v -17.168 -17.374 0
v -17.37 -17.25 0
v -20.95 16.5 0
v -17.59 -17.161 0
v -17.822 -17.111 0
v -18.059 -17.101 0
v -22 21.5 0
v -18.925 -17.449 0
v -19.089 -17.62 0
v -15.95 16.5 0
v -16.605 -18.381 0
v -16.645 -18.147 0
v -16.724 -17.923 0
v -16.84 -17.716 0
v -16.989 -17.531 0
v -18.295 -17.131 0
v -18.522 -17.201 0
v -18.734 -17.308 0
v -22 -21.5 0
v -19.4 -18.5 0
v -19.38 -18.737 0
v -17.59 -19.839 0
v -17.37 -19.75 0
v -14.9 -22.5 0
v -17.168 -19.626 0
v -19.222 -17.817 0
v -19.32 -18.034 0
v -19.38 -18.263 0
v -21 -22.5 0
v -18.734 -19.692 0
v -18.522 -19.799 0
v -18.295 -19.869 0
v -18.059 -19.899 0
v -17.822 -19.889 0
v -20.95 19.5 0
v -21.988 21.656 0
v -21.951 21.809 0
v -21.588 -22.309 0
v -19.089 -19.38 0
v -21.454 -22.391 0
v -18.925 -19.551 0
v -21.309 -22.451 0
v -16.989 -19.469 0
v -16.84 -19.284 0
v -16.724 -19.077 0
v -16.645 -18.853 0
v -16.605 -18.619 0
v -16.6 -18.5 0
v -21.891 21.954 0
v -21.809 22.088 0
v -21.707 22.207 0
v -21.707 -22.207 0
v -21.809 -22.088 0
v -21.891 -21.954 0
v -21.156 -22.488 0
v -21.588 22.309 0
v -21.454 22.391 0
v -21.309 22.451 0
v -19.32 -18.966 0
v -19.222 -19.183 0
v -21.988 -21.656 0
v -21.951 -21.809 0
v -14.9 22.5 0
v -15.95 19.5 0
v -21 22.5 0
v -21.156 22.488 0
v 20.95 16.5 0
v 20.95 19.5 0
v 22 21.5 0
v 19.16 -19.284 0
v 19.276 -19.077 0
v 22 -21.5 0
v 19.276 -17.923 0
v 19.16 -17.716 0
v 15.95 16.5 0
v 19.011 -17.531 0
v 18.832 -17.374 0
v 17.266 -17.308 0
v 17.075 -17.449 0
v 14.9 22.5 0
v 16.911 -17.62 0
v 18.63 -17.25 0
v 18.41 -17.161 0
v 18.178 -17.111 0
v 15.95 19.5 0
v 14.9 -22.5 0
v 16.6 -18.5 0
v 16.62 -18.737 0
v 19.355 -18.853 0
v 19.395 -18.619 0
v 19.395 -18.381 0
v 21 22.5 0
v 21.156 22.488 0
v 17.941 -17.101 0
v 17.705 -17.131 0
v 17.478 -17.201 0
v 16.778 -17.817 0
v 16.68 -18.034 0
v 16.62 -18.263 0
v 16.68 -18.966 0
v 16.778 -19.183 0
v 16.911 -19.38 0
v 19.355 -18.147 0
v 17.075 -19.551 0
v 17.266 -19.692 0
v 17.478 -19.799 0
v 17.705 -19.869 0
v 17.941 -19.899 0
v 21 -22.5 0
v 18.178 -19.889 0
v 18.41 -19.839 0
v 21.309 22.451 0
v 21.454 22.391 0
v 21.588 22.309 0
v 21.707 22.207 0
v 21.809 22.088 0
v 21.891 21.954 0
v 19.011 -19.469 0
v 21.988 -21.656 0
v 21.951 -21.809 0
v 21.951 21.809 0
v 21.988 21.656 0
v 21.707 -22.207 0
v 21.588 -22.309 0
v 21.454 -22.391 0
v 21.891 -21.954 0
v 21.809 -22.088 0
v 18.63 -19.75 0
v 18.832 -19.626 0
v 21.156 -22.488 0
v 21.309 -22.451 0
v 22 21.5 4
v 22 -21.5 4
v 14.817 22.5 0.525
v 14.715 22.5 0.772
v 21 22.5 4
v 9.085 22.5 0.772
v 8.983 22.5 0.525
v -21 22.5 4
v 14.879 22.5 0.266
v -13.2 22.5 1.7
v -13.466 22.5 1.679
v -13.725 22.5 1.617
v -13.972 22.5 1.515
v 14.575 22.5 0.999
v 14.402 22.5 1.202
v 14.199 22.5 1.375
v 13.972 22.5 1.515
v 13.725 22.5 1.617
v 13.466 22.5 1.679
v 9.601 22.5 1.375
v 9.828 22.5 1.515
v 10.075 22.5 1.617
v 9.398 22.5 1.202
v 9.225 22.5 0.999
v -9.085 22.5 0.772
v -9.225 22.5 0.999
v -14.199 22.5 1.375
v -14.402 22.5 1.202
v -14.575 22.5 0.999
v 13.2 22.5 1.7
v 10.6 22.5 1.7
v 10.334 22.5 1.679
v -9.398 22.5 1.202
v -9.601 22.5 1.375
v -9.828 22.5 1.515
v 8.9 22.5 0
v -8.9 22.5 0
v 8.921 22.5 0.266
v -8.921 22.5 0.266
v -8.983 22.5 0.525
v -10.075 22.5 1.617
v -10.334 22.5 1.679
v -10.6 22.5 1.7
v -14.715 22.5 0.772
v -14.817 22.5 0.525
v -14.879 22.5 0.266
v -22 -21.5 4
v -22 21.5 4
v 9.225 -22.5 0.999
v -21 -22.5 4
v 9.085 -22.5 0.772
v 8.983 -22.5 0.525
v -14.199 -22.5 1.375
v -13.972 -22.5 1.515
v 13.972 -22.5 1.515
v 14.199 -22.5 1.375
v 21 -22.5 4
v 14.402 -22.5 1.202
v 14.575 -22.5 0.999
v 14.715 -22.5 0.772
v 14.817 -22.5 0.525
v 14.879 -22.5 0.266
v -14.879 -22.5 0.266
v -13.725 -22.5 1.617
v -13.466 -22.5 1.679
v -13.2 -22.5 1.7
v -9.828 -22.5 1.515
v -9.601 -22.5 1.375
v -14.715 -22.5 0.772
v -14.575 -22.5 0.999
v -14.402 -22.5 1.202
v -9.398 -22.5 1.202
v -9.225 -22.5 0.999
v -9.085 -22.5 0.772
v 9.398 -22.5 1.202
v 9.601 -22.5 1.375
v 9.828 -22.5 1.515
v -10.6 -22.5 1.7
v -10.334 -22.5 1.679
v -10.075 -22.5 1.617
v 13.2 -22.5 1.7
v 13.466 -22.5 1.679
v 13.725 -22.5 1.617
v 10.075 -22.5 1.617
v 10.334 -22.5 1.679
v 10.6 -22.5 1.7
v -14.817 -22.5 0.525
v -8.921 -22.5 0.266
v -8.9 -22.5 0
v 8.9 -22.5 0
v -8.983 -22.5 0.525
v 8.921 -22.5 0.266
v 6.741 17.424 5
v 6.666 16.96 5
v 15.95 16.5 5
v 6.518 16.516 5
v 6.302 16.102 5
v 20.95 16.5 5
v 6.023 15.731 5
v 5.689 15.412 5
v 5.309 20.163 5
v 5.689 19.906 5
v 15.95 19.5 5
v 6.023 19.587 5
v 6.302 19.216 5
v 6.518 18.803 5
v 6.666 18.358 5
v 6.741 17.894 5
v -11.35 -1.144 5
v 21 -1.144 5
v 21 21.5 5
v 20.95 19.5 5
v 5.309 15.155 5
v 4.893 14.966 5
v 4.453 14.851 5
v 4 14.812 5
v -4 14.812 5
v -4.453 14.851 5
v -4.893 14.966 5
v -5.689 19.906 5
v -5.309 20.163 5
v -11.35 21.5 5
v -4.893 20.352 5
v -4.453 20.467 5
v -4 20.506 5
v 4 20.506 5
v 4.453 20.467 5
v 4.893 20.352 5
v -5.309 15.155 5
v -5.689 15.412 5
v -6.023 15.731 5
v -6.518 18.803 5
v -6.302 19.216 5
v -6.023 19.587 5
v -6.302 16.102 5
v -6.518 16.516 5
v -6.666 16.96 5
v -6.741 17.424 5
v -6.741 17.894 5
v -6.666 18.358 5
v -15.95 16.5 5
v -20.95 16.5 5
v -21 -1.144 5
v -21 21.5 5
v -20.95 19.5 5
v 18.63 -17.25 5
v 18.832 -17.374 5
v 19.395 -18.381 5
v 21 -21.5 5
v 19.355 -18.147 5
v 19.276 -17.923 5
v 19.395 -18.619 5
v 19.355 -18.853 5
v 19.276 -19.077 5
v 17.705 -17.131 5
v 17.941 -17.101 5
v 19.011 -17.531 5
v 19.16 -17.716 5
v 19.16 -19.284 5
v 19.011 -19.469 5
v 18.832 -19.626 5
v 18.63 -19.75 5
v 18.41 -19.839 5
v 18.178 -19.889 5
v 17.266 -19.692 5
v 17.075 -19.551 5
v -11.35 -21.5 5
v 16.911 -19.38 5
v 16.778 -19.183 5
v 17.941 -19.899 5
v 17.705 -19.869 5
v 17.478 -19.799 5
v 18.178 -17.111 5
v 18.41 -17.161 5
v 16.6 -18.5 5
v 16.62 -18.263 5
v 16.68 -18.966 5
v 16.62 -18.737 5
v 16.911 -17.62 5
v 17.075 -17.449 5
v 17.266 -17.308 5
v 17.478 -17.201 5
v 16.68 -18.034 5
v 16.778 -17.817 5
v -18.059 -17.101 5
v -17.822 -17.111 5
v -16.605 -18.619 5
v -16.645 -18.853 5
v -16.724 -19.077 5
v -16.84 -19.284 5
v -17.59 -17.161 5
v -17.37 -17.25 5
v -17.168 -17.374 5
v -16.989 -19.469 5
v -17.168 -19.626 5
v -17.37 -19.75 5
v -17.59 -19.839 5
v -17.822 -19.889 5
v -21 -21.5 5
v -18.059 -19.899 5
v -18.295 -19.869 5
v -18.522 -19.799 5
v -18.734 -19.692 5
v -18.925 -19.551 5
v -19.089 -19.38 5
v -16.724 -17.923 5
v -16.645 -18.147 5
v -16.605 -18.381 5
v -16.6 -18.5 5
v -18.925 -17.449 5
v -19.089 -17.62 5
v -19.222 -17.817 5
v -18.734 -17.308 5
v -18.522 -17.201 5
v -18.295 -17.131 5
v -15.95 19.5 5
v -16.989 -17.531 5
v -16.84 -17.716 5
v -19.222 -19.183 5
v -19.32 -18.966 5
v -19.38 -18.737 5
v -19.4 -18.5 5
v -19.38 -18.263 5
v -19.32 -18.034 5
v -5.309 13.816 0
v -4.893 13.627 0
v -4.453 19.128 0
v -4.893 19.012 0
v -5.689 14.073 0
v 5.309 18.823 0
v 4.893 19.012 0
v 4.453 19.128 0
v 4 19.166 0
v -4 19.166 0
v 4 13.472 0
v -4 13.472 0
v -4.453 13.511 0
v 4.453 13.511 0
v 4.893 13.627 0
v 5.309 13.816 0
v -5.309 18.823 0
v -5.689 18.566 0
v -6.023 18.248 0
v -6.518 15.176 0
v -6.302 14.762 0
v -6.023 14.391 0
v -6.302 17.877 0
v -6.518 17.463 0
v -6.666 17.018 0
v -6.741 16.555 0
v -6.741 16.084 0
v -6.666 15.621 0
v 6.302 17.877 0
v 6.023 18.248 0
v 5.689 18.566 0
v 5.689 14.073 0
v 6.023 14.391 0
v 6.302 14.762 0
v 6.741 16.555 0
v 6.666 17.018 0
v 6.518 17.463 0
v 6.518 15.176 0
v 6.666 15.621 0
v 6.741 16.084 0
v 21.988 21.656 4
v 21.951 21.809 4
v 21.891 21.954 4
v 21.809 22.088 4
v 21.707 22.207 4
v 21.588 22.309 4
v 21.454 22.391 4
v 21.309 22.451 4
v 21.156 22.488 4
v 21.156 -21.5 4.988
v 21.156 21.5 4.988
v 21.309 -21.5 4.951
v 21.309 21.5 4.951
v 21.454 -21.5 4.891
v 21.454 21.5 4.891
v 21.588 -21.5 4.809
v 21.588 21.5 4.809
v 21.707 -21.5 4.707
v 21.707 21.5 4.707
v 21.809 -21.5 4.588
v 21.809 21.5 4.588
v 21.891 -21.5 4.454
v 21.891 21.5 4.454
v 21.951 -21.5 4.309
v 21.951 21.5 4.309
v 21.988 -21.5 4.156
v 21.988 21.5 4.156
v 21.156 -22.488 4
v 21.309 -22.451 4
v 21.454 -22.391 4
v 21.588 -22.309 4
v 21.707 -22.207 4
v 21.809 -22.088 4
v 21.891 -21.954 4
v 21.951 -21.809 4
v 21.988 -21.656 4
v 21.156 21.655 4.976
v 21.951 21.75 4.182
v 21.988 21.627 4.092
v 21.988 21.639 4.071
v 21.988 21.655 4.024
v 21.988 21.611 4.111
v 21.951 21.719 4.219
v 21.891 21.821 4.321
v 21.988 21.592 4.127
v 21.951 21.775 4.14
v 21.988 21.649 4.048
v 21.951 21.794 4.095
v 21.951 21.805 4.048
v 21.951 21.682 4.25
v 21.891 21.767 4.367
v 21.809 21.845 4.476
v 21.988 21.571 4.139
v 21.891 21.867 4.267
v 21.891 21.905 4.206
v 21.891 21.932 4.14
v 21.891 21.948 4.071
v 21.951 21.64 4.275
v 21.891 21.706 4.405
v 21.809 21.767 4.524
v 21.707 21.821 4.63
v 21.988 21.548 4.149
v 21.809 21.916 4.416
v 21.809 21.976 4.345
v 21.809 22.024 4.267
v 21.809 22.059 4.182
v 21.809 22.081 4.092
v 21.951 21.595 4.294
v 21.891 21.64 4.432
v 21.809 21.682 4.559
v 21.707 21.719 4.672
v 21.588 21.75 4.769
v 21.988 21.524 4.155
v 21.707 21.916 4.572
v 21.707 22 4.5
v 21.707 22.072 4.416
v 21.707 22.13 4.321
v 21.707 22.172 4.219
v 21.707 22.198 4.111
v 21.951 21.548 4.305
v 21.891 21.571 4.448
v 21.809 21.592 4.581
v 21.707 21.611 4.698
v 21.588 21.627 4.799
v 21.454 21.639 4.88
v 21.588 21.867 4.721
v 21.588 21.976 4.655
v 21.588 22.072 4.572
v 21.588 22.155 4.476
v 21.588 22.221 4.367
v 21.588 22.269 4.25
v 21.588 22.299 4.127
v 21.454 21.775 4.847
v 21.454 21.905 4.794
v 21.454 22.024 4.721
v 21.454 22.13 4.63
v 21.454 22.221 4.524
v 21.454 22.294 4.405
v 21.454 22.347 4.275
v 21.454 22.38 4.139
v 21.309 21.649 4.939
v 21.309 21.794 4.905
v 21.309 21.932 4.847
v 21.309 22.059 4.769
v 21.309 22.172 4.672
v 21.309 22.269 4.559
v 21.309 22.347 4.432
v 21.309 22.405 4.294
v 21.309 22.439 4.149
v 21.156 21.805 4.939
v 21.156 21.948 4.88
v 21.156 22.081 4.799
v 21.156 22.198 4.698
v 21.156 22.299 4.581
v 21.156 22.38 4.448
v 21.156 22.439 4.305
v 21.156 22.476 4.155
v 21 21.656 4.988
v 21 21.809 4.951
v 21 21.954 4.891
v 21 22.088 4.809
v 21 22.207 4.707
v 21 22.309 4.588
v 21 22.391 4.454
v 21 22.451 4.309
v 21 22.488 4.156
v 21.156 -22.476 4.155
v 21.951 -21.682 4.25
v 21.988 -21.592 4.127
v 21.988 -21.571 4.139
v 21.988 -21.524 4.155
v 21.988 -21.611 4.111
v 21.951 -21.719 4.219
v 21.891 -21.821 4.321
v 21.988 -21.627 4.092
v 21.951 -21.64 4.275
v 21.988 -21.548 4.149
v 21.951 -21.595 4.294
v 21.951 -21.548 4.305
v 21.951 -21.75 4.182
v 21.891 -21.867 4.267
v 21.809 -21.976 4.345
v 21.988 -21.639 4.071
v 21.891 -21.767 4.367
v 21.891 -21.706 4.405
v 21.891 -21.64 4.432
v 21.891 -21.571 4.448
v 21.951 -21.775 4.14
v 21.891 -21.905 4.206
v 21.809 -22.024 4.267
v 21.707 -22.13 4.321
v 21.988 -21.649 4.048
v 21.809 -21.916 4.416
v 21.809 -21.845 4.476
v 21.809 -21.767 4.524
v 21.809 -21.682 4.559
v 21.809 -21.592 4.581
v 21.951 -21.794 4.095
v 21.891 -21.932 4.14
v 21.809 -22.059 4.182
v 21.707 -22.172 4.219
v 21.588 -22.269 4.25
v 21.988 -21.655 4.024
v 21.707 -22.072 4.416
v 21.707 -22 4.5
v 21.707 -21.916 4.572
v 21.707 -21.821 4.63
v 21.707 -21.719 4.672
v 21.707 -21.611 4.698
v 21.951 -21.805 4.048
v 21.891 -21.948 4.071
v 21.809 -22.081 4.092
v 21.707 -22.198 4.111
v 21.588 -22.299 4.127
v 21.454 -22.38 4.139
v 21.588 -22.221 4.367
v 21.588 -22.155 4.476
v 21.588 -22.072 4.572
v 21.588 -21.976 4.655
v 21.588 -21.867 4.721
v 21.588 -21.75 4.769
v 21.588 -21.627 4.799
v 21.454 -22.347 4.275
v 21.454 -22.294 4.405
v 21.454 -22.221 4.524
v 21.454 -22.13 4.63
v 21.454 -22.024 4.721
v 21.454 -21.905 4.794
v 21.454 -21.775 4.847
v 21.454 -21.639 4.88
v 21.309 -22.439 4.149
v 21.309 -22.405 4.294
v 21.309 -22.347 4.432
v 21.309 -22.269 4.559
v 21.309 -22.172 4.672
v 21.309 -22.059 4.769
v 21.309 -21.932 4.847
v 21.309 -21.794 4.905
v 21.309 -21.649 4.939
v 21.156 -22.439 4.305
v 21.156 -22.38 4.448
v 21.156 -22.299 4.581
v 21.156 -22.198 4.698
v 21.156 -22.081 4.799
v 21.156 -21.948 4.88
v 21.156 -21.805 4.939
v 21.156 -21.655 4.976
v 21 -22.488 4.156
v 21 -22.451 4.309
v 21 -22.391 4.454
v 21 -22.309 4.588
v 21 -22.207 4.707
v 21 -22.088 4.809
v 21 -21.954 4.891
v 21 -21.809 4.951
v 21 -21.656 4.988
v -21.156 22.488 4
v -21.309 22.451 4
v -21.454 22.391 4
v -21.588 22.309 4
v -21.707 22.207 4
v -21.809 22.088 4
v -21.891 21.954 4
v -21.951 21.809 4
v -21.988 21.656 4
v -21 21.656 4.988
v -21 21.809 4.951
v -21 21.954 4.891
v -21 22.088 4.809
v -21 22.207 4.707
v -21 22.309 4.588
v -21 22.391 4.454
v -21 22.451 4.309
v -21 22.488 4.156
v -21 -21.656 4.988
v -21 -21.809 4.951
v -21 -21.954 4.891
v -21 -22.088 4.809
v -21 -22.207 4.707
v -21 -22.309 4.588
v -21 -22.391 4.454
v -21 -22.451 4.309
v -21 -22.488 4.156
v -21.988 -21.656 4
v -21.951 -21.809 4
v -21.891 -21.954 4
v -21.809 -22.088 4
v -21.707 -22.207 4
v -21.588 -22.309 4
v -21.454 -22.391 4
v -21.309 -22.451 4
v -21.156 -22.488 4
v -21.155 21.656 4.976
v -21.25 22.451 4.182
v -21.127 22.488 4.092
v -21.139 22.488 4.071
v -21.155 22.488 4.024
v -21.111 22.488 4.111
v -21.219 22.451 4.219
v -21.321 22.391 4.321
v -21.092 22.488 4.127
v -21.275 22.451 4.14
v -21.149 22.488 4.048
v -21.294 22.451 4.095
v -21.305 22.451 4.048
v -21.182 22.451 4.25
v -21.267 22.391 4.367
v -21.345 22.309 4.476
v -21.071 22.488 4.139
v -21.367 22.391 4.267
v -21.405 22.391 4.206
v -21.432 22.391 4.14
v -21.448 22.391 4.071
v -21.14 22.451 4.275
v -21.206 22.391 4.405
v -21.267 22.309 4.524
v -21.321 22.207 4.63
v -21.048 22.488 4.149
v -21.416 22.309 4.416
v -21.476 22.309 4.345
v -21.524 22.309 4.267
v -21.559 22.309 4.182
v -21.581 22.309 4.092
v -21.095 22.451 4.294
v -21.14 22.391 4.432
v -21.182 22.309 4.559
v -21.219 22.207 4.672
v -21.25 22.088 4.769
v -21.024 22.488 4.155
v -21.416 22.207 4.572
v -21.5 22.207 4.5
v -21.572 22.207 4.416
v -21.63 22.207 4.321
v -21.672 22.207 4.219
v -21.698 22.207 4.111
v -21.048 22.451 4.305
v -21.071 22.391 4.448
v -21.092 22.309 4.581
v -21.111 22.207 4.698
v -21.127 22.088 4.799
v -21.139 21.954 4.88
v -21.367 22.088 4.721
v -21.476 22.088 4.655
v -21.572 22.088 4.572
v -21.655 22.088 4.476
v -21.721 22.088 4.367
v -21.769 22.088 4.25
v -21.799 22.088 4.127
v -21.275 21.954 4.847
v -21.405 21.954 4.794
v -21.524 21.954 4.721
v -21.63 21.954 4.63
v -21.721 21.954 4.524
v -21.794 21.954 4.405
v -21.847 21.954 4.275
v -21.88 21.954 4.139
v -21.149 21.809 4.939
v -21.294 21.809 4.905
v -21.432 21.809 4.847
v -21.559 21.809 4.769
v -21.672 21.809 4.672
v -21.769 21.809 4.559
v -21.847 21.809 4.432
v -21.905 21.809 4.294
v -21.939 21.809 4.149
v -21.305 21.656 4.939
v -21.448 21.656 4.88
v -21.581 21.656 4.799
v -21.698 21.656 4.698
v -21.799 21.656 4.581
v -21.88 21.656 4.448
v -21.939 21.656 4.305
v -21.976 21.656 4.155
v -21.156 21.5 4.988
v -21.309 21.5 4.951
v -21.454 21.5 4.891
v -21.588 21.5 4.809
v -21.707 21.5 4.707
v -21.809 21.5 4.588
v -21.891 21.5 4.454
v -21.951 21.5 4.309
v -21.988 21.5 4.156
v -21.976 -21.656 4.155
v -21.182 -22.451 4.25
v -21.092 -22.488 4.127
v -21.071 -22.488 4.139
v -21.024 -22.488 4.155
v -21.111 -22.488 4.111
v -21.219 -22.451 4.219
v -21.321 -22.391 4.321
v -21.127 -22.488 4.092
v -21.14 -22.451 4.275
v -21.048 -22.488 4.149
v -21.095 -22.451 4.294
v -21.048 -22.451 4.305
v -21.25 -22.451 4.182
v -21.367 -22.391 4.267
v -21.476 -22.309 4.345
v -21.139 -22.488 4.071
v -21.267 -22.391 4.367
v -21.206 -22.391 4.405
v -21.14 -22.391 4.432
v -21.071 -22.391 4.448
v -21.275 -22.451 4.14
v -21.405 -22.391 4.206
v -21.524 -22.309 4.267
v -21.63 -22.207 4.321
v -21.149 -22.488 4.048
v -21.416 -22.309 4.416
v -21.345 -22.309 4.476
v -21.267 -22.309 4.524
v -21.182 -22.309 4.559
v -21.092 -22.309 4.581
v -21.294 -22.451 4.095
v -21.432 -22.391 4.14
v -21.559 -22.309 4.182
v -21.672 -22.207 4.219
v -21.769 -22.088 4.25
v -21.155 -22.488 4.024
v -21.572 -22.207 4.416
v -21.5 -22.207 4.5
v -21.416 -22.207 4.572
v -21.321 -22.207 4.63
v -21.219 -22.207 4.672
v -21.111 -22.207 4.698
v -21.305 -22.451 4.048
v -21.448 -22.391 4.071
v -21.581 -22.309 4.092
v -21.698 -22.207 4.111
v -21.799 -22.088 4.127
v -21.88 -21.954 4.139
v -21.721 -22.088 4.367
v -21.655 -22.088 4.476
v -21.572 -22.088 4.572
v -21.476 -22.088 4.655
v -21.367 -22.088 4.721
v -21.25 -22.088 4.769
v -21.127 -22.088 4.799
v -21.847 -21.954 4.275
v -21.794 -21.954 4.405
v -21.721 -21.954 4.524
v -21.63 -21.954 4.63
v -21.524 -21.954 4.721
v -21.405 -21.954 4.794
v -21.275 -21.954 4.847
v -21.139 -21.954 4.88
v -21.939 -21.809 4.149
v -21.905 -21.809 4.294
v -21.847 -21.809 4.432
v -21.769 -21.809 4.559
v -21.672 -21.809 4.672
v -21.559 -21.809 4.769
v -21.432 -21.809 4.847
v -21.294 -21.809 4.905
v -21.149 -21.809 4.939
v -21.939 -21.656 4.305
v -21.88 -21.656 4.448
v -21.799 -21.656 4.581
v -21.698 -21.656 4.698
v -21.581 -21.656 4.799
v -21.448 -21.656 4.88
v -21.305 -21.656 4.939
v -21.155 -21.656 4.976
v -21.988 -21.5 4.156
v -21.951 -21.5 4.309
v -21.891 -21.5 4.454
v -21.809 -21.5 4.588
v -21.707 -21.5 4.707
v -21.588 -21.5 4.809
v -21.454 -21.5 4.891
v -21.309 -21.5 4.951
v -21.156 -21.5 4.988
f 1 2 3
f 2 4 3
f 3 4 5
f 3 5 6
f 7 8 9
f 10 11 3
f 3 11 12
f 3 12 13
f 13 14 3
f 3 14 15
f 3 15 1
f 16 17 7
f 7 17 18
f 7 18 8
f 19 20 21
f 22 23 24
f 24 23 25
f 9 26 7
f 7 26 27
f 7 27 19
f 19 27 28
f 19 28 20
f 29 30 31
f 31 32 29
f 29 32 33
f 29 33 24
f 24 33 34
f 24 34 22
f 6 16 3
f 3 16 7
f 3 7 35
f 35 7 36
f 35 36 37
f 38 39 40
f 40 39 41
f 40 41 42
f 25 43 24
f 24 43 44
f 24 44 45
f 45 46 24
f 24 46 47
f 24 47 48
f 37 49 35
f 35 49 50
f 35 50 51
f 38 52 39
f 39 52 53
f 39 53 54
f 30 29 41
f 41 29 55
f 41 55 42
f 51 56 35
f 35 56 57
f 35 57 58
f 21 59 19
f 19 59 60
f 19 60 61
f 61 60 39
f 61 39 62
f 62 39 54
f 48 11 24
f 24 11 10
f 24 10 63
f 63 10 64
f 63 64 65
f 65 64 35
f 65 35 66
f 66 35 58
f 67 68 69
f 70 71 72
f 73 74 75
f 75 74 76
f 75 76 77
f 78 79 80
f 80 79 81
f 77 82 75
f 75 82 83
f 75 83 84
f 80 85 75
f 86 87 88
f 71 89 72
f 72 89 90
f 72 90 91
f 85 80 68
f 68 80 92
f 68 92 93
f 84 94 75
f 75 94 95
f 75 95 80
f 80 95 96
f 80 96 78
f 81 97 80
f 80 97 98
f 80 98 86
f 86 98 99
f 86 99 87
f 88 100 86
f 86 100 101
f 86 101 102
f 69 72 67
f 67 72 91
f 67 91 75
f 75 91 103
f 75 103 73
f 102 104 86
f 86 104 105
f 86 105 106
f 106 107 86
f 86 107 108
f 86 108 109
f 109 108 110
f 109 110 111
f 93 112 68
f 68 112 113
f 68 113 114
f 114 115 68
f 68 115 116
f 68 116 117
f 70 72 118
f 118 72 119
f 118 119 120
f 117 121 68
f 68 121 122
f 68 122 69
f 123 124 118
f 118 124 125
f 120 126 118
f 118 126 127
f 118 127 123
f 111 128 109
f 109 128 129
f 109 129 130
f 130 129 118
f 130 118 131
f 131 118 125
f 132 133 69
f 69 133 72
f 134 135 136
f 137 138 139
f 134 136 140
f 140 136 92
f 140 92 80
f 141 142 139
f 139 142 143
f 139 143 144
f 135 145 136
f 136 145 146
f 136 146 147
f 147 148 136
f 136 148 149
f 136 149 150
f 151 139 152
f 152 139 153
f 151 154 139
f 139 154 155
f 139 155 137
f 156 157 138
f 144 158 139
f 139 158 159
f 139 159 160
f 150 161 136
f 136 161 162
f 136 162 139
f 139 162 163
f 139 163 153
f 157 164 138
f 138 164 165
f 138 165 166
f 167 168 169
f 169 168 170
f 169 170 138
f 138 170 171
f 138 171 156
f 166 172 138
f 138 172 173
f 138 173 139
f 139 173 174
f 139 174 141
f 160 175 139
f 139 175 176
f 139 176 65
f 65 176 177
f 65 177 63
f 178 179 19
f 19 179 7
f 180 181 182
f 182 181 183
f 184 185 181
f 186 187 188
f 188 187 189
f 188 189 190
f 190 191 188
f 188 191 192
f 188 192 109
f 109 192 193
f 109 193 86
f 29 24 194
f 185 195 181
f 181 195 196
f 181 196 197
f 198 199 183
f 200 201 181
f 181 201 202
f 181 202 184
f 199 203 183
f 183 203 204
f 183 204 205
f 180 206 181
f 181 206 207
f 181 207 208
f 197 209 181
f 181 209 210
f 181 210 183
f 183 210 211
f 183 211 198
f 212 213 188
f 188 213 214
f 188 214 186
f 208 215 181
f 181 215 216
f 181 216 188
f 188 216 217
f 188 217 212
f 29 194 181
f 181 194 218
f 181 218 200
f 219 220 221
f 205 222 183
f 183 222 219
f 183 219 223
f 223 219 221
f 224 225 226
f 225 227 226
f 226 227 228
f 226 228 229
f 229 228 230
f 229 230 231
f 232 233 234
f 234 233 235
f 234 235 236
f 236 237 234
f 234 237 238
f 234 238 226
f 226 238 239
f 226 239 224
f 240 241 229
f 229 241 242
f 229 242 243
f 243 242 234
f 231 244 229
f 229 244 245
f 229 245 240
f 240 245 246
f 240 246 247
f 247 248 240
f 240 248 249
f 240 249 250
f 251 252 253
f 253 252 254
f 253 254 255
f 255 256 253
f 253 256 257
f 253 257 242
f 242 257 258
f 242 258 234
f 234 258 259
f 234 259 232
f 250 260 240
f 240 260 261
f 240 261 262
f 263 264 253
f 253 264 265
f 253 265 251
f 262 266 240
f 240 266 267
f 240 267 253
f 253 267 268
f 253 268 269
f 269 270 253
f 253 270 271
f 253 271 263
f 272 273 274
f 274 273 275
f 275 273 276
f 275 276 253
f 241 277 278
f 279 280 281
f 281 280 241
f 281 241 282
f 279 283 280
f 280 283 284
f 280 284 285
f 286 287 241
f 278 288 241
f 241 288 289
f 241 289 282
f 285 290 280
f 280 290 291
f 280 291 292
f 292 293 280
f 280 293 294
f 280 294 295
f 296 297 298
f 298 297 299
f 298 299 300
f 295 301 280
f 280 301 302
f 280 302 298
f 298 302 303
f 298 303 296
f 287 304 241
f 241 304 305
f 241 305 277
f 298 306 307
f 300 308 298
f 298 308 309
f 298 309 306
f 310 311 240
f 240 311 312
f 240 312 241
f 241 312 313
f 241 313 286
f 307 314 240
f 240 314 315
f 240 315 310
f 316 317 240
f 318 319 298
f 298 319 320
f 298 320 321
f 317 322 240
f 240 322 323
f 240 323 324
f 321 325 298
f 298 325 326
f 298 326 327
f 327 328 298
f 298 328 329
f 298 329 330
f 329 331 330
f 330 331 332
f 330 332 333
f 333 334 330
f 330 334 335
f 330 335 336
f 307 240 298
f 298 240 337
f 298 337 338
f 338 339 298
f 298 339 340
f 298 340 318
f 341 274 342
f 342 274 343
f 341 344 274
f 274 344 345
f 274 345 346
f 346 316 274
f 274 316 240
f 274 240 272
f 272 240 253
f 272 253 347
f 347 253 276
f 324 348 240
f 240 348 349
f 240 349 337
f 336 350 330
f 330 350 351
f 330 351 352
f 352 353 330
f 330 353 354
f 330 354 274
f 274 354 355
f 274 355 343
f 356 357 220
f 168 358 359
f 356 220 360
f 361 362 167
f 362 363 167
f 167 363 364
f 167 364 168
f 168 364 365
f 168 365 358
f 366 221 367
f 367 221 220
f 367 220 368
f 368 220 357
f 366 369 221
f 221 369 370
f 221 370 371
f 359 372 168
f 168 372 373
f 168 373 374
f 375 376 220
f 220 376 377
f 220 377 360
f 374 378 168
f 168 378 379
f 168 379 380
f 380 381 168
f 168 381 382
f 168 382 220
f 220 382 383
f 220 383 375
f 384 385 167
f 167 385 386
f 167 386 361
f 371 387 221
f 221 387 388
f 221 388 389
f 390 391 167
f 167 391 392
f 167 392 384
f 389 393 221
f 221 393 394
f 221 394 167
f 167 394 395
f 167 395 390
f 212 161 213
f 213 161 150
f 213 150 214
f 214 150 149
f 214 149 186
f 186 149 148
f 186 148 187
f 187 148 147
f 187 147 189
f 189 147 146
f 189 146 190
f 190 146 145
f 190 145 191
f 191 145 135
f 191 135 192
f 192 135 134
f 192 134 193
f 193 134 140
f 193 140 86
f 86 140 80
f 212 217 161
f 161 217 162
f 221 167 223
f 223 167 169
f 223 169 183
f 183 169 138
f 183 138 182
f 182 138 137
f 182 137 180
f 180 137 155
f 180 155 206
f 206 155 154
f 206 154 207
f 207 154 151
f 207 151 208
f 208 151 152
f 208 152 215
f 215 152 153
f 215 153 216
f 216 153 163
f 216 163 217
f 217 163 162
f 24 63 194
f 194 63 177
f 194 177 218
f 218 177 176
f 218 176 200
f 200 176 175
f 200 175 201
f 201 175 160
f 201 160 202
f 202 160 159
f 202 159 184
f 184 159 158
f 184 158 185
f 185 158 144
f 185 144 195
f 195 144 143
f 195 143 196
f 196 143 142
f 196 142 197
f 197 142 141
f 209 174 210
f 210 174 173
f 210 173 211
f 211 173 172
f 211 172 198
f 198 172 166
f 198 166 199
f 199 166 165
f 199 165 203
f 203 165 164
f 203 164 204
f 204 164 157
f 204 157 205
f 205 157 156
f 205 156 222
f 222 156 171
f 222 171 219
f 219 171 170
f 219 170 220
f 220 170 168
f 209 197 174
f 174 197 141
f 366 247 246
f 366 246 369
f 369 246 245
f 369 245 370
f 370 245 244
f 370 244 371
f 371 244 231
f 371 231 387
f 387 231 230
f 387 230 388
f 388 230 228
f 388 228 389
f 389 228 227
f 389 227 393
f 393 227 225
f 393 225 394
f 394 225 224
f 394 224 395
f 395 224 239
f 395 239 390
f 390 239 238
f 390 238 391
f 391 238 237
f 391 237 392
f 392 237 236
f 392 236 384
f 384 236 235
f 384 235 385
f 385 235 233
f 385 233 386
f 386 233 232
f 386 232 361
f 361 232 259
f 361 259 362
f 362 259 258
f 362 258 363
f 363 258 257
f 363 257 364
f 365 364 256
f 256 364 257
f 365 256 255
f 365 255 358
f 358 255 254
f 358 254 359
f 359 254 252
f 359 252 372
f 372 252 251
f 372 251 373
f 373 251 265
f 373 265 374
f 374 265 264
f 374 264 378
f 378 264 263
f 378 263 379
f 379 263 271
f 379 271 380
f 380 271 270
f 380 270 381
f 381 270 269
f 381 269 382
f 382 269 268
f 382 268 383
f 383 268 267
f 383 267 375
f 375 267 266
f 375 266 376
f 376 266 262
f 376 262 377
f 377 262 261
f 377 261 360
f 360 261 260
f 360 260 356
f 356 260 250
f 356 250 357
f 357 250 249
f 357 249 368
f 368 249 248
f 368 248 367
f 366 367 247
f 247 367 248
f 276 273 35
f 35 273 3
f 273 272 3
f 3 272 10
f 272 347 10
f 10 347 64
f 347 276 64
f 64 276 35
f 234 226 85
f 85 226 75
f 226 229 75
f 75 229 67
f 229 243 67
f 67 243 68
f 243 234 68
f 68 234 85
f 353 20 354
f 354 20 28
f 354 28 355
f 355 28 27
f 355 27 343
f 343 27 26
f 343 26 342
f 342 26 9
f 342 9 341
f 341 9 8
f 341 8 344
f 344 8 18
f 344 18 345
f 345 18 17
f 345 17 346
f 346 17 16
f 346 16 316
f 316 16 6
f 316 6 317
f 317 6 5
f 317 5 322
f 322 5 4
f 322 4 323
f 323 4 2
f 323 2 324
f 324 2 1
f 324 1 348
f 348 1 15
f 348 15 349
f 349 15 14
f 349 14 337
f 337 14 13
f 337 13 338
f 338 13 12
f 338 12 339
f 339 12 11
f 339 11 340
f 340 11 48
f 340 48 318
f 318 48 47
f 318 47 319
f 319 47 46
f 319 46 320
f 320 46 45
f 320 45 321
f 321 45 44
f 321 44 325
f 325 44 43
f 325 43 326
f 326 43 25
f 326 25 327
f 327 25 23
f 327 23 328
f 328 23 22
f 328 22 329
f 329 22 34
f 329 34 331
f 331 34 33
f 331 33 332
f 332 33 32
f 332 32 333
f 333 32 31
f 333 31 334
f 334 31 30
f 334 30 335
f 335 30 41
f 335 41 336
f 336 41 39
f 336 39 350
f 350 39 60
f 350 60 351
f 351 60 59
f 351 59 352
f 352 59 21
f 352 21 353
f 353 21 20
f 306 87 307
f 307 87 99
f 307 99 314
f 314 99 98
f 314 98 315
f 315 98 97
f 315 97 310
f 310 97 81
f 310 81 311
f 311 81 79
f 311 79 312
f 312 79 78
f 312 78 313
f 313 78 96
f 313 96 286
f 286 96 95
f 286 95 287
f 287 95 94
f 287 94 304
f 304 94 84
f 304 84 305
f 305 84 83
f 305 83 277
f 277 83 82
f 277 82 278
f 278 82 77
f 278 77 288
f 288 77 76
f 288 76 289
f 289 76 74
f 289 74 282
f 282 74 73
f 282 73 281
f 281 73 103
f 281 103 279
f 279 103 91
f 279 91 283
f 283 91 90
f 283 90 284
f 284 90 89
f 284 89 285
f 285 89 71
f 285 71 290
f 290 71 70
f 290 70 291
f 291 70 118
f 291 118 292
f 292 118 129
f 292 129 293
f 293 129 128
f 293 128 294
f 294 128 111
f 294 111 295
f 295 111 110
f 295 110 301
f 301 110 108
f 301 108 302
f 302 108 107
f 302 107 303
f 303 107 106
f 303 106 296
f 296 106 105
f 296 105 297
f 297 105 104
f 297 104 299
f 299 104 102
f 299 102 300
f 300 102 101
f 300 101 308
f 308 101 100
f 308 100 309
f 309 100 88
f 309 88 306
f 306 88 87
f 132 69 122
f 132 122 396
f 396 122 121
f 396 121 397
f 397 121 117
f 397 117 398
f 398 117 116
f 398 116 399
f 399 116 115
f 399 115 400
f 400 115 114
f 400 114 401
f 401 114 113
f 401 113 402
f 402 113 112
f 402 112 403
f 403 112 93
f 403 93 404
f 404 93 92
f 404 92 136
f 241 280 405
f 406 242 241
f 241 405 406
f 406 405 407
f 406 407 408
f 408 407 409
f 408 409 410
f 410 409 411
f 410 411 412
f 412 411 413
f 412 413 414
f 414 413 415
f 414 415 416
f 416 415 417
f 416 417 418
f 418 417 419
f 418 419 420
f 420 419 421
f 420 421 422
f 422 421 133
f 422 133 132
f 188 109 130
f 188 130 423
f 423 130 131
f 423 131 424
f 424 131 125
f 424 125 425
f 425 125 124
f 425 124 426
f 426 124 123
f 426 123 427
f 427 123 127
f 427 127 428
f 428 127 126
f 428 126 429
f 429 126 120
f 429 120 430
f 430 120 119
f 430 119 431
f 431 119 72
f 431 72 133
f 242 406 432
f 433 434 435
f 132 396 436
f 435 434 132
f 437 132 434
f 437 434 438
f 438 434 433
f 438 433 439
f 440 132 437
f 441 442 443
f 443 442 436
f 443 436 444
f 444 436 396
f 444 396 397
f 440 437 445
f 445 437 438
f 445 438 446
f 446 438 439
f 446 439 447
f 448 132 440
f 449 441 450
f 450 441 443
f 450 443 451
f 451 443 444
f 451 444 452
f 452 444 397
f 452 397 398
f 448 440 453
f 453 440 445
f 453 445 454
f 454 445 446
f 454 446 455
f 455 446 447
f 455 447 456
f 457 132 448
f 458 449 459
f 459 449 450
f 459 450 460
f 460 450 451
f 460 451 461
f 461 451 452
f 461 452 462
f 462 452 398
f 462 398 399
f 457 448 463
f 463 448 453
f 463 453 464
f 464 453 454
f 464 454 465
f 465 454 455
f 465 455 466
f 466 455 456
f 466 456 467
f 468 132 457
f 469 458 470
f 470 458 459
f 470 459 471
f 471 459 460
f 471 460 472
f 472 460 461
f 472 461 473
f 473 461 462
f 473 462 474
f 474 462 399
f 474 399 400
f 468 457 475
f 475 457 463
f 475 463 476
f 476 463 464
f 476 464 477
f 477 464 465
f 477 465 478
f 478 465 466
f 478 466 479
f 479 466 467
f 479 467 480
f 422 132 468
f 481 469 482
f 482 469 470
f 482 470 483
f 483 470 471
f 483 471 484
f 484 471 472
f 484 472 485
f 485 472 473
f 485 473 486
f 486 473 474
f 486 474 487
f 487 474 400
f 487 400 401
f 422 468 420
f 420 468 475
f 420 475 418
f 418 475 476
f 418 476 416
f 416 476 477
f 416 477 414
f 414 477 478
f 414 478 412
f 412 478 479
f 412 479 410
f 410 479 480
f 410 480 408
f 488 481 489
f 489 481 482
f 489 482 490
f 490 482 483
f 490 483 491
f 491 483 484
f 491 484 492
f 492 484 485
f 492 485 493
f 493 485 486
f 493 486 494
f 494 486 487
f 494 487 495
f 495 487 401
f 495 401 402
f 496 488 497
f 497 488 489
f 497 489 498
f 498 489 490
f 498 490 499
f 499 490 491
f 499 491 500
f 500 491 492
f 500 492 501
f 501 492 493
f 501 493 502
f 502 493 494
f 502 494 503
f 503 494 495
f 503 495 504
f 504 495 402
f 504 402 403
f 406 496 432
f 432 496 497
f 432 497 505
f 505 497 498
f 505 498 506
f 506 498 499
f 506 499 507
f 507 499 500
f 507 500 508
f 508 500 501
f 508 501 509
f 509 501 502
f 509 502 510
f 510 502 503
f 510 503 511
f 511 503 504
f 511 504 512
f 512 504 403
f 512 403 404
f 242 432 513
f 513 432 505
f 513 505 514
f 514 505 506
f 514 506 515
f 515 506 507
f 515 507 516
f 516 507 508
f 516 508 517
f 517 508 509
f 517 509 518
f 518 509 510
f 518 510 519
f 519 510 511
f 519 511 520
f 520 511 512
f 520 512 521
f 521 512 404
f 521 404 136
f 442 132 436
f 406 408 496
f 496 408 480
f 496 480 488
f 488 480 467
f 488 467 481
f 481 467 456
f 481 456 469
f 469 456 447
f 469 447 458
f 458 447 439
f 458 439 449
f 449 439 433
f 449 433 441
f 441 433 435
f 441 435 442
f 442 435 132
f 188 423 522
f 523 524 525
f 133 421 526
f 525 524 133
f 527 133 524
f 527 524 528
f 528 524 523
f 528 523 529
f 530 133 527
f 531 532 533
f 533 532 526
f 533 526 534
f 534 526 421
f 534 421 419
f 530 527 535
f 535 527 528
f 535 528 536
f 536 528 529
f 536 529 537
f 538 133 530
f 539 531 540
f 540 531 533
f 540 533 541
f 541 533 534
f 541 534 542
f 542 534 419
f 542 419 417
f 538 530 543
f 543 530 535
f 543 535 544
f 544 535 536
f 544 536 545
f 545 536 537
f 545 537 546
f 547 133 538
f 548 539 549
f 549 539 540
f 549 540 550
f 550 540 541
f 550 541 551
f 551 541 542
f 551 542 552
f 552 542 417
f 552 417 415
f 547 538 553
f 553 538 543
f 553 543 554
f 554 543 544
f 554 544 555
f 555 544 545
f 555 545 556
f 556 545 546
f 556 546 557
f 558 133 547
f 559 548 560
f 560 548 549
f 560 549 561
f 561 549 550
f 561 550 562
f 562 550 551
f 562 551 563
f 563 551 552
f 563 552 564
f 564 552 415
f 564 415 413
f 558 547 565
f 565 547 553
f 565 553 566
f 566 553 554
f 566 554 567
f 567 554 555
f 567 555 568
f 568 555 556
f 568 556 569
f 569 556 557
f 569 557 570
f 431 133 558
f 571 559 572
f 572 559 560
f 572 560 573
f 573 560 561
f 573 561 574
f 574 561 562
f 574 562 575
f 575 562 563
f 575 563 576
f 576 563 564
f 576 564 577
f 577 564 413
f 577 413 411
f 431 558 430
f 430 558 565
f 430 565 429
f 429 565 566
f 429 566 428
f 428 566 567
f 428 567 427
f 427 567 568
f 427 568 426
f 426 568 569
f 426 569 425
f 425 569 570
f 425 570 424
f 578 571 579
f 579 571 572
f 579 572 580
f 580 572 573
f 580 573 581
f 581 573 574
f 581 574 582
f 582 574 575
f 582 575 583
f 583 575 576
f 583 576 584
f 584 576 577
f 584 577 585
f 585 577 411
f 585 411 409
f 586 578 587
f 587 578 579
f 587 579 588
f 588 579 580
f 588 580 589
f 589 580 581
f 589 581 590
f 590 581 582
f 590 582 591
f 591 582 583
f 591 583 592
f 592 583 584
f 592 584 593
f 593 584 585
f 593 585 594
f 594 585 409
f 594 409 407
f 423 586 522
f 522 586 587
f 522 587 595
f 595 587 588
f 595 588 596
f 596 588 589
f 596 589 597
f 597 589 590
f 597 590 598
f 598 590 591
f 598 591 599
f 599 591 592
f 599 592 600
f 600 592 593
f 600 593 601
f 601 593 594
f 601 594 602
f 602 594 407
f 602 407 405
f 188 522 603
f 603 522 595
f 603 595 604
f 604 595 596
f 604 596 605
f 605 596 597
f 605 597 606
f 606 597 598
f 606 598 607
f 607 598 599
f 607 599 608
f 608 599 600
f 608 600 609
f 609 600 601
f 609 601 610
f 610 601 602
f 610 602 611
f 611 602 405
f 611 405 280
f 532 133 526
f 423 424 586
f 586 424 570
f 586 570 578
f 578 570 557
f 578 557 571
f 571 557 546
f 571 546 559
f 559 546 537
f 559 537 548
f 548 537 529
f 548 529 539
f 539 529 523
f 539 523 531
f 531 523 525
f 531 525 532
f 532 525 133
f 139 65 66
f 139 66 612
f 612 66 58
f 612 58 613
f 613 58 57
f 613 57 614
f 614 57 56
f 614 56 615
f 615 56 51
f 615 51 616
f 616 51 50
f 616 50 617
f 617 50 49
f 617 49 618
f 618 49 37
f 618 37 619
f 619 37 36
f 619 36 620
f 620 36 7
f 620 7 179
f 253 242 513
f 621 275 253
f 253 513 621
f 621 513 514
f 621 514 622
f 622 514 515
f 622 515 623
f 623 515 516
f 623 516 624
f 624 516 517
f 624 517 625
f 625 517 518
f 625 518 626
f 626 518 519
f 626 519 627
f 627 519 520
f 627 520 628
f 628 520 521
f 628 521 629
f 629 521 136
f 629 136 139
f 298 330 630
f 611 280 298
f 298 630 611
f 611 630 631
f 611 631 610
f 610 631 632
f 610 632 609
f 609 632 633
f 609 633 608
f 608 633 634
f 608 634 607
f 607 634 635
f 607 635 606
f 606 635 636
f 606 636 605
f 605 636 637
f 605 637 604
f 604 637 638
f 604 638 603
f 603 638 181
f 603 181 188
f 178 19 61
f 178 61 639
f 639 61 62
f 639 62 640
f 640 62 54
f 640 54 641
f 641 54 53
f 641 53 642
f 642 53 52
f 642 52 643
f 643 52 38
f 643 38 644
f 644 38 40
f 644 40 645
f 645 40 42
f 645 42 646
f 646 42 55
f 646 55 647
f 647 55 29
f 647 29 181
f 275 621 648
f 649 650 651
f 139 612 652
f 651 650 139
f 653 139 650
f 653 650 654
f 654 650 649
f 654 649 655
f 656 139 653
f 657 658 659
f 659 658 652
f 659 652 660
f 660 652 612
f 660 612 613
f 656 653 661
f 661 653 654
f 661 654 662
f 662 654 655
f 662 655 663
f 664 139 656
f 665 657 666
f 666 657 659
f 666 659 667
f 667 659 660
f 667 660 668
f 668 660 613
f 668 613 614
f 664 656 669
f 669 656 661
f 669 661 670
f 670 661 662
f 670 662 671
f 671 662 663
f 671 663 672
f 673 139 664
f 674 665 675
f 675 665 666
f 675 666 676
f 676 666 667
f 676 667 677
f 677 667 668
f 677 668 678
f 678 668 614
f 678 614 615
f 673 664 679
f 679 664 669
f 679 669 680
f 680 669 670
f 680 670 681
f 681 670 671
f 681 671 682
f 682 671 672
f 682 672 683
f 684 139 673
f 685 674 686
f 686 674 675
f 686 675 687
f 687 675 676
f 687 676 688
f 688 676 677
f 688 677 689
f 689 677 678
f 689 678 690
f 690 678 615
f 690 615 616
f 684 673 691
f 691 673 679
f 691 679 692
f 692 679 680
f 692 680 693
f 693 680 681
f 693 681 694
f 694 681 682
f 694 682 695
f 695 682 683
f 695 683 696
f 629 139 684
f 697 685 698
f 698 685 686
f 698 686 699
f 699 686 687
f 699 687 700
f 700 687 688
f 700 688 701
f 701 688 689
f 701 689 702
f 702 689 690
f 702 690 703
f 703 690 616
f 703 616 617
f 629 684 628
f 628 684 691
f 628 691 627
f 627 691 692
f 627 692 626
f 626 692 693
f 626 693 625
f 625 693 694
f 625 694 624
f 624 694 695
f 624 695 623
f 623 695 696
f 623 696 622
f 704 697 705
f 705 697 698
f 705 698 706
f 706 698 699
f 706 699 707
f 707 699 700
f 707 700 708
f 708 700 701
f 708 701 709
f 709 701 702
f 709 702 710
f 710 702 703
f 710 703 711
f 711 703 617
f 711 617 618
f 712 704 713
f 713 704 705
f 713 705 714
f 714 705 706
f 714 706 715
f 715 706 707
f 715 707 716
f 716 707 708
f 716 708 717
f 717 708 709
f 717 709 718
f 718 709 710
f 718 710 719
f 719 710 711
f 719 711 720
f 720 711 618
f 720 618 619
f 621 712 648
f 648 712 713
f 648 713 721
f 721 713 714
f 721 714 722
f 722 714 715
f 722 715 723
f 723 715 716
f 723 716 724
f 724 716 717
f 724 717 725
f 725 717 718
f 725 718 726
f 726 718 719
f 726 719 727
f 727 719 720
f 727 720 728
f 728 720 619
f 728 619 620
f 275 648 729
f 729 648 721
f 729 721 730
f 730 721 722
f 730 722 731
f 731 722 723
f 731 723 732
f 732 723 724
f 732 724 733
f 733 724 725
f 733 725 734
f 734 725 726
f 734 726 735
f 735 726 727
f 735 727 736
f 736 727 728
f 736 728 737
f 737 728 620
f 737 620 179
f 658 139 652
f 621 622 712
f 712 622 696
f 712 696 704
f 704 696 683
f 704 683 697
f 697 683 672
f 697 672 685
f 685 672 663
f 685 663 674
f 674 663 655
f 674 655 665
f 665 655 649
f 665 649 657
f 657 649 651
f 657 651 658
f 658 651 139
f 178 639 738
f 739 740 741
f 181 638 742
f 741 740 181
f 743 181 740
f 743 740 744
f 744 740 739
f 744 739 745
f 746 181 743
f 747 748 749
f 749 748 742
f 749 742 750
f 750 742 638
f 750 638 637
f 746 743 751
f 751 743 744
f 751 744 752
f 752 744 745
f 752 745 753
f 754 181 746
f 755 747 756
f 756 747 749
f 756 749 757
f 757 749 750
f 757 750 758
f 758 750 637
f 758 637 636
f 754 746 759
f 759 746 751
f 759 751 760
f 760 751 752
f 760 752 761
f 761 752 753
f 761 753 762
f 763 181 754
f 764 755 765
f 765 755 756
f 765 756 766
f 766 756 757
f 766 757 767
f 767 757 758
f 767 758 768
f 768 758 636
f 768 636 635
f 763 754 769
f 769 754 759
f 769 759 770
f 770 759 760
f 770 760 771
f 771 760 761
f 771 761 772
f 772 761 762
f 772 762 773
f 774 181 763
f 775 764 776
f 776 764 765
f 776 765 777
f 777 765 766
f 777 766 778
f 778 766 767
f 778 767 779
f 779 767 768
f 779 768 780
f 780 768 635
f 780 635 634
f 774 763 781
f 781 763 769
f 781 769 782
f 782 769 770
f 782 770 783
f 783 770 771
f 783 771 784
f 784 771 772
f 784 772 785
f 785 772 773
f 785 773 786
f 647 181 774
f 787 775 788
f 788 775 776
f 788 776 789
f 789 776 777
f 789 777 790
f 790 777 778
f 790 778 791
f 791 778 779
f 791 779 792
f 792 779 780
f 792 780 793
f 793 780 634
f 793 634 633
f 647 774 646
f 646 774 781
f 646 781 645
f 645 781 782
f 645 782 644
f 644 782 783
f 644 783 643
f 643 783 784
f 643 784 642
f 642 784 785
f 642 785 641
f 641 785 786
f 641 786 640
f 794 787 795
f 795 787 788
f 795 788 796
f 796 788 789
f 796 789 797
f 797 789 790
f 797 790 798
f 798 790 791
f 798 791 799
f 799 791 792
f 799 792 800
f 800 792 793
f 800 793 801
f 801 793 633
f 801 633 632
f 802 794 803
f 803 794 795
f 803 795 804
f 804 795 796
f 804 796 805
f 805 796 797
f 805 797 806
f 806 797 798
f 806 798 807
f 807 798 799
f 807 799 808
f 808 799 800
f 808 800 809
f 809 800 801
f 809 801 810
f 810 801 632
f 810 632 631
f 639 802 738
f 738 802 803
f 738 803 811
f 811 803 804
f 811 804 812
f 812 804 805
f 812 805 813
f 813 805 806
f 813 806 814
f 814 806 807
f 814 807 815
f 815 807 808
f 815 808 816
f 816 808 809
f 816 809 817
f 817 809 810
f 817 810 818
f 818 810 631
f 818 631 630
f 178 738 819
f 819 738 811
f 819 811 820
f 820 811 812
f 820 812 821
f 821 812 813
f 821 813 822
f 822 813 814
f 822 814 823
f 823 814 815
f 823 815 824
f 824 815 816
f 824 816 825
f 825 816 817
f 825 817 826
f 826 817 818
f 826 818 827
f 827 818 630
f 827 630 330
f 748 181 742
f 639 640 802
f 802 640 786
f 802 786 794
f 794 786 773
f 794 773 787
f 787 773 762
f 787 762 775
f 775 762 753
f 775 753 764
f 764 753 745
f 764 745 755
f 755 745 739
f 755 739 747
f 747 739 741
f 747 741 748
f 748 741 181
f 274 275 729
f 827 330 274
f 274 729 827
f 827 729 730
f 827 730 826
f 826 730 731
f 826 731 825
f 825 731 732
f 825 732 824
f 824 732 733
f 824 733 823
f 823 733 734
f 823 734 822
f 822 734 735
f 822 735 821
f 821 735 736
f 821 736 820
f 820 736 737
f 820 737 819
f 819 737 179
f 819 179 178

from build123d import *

# Parameters (mm, degrees)
SKETCH1_W                       = 44
SKETCH1_H                       = 45
BASE_DEPTH                      = 5
WIRE_GROOVES_DEPTH              = 51.338851795
SCREW_INSERTION_HOLE_DEPTH      = 33.181634738
SCREW_INSERTION_HOLE_DEPTH_BACK = 33.181634738
SKETCH5_W                       = 5
SKETCH5_H                       = 3
ZIP_TIE_SLOTS_DEPTH             = 32.862987933
SKETCH6_R                       = 1.4
MOUNT_CLAMPING_HOLES_DEPTH      = 32.862987933
EDGE_FILLETS_R                  = 1


with BuildPart() as part:
    # Sketch1 → Base (new body)
    with BuildSketch(Plane.XY):
        Rectangle(SKETCH1_W, SKETCH1_H)
    extrude(amount=BASE_DEPTH)

    # Sketch2 → Wire Grooves (cut, through all)
    with BuildSketch(Plane(origin=(0, 22.5, 0), x_dir=(1, 0, 0), z_dir=(0, 1, 0))):
        with BuildLine():
            Line((-14.9, 0), (-8.9, 0))
            ThreePointArc((-8.9, 0), (-9.397918472, -1.202081528), (-10.6, -1.7))
            Line((-10.6, -1.7), (-13.2, -1.7))
            ThreePointArc((-13.2, -1.7), (-14.402081528, -1.202081528), (-14.9, 0))
        make_face()
        with BuildLine():
            Line((13.2, -1.7), (10.6, -1.7))
            ThreePointArc((10.6, -1.7), (9.397918472, -1.202081528), (8.9, 0))
            Line((8.9, 0), (14.9, 0))
            ThreePointArc((14.9, 0), (14.402081528, -1.202081528), (13.2, -1.7))
        make_face()
    extrude(amount=-WIRE_GROOVES_DEPTH, mode=Mode.SUBTRACT)

    # Sketch3 → Screw Insertion Hole (cut, two sides: drawn at the far end of the back side and taken through both)
    with BuildSketch(Plane(origin=(0, 0.596130014, 4.269237963), x_dir=(-1, 0, 0), z_dir=(0, -0.25881904510252135, -0.9659258262890681)).offset(-SCREW_INSERTION_HOLE_DEPTH_BACK)):
        with BuildLine():
            Line((-4, 19.042473808), (4, 19.042473808))
            ThreePointArc((4, 19.042473808), (6.75, 16.292473808), (4, 13.542473808))
            Line((4, 13.542473808), (-4, 13.542473808))
            ThreePointArc((-4, 13.542473808), (-6.75, 16.292473808), (-4, 19.042473808))
        make_face()
    extrude(amount=SCREW_INSERTION_HOLE_DEPTH + SCREW_INSERTION_HOLE_DEPTH_BACK, mode=Mode.SUBTRACT)

    # Sketch5 → Zip Tie Slots (cut, through all)
    with BuildSketch(Plane(origin=(0, 0, 0), x_dir=(-1, 0, 0), z_dir=(0, 0, -1))):
        with Locations((-18.45, 18)):
            Rectangle(SKETCH5_W, SKETCH5_H)
        with Locations((18.45, 18)):
            Rectangle(SKETCH5_W, SKETCH5_H)
    extrude(amount=-ZIP_TIE_SLOTS_DEPTH, mode=Mode.SUBTRACT)

    # Sketch6 → Mount Clamping Holes (cut, through all)
    with BuildSketch(Plane(origin=(0, 0, 0), x_dir=(-1, 0, 0), z_dir=(0, 0, -1))):
        with Locations((-18, -18.5)):
            Circle(SKETCH6_R)
        with Locations(Location((18, -18.5, 0), (0, 0, 180))):
            Circle(SKETCH6_R)
    extrude(amount=-MOUNT_CLAMPING_HOLES_DEPTH, mode=Mode.SUBTRACT)

    # Edge Fillets
    edge_fillets_edges = [part.edges().sort_by_distance(p)[0] for p in [
        (-22, 0, 5),
        (0, -22.5, 5),
        (22, 0, 5),
        (22, -22.5, 2.5),
        (-22, -22.5, 2.5),
        (-22, 22.5, 2.5),
        (22, 22.5, 2.5),
        (0, 22.5, 5),
    ]]
    fillet(edge_fillets_edges, radius=EDGE_FILLETS_R)


solid = part.part
